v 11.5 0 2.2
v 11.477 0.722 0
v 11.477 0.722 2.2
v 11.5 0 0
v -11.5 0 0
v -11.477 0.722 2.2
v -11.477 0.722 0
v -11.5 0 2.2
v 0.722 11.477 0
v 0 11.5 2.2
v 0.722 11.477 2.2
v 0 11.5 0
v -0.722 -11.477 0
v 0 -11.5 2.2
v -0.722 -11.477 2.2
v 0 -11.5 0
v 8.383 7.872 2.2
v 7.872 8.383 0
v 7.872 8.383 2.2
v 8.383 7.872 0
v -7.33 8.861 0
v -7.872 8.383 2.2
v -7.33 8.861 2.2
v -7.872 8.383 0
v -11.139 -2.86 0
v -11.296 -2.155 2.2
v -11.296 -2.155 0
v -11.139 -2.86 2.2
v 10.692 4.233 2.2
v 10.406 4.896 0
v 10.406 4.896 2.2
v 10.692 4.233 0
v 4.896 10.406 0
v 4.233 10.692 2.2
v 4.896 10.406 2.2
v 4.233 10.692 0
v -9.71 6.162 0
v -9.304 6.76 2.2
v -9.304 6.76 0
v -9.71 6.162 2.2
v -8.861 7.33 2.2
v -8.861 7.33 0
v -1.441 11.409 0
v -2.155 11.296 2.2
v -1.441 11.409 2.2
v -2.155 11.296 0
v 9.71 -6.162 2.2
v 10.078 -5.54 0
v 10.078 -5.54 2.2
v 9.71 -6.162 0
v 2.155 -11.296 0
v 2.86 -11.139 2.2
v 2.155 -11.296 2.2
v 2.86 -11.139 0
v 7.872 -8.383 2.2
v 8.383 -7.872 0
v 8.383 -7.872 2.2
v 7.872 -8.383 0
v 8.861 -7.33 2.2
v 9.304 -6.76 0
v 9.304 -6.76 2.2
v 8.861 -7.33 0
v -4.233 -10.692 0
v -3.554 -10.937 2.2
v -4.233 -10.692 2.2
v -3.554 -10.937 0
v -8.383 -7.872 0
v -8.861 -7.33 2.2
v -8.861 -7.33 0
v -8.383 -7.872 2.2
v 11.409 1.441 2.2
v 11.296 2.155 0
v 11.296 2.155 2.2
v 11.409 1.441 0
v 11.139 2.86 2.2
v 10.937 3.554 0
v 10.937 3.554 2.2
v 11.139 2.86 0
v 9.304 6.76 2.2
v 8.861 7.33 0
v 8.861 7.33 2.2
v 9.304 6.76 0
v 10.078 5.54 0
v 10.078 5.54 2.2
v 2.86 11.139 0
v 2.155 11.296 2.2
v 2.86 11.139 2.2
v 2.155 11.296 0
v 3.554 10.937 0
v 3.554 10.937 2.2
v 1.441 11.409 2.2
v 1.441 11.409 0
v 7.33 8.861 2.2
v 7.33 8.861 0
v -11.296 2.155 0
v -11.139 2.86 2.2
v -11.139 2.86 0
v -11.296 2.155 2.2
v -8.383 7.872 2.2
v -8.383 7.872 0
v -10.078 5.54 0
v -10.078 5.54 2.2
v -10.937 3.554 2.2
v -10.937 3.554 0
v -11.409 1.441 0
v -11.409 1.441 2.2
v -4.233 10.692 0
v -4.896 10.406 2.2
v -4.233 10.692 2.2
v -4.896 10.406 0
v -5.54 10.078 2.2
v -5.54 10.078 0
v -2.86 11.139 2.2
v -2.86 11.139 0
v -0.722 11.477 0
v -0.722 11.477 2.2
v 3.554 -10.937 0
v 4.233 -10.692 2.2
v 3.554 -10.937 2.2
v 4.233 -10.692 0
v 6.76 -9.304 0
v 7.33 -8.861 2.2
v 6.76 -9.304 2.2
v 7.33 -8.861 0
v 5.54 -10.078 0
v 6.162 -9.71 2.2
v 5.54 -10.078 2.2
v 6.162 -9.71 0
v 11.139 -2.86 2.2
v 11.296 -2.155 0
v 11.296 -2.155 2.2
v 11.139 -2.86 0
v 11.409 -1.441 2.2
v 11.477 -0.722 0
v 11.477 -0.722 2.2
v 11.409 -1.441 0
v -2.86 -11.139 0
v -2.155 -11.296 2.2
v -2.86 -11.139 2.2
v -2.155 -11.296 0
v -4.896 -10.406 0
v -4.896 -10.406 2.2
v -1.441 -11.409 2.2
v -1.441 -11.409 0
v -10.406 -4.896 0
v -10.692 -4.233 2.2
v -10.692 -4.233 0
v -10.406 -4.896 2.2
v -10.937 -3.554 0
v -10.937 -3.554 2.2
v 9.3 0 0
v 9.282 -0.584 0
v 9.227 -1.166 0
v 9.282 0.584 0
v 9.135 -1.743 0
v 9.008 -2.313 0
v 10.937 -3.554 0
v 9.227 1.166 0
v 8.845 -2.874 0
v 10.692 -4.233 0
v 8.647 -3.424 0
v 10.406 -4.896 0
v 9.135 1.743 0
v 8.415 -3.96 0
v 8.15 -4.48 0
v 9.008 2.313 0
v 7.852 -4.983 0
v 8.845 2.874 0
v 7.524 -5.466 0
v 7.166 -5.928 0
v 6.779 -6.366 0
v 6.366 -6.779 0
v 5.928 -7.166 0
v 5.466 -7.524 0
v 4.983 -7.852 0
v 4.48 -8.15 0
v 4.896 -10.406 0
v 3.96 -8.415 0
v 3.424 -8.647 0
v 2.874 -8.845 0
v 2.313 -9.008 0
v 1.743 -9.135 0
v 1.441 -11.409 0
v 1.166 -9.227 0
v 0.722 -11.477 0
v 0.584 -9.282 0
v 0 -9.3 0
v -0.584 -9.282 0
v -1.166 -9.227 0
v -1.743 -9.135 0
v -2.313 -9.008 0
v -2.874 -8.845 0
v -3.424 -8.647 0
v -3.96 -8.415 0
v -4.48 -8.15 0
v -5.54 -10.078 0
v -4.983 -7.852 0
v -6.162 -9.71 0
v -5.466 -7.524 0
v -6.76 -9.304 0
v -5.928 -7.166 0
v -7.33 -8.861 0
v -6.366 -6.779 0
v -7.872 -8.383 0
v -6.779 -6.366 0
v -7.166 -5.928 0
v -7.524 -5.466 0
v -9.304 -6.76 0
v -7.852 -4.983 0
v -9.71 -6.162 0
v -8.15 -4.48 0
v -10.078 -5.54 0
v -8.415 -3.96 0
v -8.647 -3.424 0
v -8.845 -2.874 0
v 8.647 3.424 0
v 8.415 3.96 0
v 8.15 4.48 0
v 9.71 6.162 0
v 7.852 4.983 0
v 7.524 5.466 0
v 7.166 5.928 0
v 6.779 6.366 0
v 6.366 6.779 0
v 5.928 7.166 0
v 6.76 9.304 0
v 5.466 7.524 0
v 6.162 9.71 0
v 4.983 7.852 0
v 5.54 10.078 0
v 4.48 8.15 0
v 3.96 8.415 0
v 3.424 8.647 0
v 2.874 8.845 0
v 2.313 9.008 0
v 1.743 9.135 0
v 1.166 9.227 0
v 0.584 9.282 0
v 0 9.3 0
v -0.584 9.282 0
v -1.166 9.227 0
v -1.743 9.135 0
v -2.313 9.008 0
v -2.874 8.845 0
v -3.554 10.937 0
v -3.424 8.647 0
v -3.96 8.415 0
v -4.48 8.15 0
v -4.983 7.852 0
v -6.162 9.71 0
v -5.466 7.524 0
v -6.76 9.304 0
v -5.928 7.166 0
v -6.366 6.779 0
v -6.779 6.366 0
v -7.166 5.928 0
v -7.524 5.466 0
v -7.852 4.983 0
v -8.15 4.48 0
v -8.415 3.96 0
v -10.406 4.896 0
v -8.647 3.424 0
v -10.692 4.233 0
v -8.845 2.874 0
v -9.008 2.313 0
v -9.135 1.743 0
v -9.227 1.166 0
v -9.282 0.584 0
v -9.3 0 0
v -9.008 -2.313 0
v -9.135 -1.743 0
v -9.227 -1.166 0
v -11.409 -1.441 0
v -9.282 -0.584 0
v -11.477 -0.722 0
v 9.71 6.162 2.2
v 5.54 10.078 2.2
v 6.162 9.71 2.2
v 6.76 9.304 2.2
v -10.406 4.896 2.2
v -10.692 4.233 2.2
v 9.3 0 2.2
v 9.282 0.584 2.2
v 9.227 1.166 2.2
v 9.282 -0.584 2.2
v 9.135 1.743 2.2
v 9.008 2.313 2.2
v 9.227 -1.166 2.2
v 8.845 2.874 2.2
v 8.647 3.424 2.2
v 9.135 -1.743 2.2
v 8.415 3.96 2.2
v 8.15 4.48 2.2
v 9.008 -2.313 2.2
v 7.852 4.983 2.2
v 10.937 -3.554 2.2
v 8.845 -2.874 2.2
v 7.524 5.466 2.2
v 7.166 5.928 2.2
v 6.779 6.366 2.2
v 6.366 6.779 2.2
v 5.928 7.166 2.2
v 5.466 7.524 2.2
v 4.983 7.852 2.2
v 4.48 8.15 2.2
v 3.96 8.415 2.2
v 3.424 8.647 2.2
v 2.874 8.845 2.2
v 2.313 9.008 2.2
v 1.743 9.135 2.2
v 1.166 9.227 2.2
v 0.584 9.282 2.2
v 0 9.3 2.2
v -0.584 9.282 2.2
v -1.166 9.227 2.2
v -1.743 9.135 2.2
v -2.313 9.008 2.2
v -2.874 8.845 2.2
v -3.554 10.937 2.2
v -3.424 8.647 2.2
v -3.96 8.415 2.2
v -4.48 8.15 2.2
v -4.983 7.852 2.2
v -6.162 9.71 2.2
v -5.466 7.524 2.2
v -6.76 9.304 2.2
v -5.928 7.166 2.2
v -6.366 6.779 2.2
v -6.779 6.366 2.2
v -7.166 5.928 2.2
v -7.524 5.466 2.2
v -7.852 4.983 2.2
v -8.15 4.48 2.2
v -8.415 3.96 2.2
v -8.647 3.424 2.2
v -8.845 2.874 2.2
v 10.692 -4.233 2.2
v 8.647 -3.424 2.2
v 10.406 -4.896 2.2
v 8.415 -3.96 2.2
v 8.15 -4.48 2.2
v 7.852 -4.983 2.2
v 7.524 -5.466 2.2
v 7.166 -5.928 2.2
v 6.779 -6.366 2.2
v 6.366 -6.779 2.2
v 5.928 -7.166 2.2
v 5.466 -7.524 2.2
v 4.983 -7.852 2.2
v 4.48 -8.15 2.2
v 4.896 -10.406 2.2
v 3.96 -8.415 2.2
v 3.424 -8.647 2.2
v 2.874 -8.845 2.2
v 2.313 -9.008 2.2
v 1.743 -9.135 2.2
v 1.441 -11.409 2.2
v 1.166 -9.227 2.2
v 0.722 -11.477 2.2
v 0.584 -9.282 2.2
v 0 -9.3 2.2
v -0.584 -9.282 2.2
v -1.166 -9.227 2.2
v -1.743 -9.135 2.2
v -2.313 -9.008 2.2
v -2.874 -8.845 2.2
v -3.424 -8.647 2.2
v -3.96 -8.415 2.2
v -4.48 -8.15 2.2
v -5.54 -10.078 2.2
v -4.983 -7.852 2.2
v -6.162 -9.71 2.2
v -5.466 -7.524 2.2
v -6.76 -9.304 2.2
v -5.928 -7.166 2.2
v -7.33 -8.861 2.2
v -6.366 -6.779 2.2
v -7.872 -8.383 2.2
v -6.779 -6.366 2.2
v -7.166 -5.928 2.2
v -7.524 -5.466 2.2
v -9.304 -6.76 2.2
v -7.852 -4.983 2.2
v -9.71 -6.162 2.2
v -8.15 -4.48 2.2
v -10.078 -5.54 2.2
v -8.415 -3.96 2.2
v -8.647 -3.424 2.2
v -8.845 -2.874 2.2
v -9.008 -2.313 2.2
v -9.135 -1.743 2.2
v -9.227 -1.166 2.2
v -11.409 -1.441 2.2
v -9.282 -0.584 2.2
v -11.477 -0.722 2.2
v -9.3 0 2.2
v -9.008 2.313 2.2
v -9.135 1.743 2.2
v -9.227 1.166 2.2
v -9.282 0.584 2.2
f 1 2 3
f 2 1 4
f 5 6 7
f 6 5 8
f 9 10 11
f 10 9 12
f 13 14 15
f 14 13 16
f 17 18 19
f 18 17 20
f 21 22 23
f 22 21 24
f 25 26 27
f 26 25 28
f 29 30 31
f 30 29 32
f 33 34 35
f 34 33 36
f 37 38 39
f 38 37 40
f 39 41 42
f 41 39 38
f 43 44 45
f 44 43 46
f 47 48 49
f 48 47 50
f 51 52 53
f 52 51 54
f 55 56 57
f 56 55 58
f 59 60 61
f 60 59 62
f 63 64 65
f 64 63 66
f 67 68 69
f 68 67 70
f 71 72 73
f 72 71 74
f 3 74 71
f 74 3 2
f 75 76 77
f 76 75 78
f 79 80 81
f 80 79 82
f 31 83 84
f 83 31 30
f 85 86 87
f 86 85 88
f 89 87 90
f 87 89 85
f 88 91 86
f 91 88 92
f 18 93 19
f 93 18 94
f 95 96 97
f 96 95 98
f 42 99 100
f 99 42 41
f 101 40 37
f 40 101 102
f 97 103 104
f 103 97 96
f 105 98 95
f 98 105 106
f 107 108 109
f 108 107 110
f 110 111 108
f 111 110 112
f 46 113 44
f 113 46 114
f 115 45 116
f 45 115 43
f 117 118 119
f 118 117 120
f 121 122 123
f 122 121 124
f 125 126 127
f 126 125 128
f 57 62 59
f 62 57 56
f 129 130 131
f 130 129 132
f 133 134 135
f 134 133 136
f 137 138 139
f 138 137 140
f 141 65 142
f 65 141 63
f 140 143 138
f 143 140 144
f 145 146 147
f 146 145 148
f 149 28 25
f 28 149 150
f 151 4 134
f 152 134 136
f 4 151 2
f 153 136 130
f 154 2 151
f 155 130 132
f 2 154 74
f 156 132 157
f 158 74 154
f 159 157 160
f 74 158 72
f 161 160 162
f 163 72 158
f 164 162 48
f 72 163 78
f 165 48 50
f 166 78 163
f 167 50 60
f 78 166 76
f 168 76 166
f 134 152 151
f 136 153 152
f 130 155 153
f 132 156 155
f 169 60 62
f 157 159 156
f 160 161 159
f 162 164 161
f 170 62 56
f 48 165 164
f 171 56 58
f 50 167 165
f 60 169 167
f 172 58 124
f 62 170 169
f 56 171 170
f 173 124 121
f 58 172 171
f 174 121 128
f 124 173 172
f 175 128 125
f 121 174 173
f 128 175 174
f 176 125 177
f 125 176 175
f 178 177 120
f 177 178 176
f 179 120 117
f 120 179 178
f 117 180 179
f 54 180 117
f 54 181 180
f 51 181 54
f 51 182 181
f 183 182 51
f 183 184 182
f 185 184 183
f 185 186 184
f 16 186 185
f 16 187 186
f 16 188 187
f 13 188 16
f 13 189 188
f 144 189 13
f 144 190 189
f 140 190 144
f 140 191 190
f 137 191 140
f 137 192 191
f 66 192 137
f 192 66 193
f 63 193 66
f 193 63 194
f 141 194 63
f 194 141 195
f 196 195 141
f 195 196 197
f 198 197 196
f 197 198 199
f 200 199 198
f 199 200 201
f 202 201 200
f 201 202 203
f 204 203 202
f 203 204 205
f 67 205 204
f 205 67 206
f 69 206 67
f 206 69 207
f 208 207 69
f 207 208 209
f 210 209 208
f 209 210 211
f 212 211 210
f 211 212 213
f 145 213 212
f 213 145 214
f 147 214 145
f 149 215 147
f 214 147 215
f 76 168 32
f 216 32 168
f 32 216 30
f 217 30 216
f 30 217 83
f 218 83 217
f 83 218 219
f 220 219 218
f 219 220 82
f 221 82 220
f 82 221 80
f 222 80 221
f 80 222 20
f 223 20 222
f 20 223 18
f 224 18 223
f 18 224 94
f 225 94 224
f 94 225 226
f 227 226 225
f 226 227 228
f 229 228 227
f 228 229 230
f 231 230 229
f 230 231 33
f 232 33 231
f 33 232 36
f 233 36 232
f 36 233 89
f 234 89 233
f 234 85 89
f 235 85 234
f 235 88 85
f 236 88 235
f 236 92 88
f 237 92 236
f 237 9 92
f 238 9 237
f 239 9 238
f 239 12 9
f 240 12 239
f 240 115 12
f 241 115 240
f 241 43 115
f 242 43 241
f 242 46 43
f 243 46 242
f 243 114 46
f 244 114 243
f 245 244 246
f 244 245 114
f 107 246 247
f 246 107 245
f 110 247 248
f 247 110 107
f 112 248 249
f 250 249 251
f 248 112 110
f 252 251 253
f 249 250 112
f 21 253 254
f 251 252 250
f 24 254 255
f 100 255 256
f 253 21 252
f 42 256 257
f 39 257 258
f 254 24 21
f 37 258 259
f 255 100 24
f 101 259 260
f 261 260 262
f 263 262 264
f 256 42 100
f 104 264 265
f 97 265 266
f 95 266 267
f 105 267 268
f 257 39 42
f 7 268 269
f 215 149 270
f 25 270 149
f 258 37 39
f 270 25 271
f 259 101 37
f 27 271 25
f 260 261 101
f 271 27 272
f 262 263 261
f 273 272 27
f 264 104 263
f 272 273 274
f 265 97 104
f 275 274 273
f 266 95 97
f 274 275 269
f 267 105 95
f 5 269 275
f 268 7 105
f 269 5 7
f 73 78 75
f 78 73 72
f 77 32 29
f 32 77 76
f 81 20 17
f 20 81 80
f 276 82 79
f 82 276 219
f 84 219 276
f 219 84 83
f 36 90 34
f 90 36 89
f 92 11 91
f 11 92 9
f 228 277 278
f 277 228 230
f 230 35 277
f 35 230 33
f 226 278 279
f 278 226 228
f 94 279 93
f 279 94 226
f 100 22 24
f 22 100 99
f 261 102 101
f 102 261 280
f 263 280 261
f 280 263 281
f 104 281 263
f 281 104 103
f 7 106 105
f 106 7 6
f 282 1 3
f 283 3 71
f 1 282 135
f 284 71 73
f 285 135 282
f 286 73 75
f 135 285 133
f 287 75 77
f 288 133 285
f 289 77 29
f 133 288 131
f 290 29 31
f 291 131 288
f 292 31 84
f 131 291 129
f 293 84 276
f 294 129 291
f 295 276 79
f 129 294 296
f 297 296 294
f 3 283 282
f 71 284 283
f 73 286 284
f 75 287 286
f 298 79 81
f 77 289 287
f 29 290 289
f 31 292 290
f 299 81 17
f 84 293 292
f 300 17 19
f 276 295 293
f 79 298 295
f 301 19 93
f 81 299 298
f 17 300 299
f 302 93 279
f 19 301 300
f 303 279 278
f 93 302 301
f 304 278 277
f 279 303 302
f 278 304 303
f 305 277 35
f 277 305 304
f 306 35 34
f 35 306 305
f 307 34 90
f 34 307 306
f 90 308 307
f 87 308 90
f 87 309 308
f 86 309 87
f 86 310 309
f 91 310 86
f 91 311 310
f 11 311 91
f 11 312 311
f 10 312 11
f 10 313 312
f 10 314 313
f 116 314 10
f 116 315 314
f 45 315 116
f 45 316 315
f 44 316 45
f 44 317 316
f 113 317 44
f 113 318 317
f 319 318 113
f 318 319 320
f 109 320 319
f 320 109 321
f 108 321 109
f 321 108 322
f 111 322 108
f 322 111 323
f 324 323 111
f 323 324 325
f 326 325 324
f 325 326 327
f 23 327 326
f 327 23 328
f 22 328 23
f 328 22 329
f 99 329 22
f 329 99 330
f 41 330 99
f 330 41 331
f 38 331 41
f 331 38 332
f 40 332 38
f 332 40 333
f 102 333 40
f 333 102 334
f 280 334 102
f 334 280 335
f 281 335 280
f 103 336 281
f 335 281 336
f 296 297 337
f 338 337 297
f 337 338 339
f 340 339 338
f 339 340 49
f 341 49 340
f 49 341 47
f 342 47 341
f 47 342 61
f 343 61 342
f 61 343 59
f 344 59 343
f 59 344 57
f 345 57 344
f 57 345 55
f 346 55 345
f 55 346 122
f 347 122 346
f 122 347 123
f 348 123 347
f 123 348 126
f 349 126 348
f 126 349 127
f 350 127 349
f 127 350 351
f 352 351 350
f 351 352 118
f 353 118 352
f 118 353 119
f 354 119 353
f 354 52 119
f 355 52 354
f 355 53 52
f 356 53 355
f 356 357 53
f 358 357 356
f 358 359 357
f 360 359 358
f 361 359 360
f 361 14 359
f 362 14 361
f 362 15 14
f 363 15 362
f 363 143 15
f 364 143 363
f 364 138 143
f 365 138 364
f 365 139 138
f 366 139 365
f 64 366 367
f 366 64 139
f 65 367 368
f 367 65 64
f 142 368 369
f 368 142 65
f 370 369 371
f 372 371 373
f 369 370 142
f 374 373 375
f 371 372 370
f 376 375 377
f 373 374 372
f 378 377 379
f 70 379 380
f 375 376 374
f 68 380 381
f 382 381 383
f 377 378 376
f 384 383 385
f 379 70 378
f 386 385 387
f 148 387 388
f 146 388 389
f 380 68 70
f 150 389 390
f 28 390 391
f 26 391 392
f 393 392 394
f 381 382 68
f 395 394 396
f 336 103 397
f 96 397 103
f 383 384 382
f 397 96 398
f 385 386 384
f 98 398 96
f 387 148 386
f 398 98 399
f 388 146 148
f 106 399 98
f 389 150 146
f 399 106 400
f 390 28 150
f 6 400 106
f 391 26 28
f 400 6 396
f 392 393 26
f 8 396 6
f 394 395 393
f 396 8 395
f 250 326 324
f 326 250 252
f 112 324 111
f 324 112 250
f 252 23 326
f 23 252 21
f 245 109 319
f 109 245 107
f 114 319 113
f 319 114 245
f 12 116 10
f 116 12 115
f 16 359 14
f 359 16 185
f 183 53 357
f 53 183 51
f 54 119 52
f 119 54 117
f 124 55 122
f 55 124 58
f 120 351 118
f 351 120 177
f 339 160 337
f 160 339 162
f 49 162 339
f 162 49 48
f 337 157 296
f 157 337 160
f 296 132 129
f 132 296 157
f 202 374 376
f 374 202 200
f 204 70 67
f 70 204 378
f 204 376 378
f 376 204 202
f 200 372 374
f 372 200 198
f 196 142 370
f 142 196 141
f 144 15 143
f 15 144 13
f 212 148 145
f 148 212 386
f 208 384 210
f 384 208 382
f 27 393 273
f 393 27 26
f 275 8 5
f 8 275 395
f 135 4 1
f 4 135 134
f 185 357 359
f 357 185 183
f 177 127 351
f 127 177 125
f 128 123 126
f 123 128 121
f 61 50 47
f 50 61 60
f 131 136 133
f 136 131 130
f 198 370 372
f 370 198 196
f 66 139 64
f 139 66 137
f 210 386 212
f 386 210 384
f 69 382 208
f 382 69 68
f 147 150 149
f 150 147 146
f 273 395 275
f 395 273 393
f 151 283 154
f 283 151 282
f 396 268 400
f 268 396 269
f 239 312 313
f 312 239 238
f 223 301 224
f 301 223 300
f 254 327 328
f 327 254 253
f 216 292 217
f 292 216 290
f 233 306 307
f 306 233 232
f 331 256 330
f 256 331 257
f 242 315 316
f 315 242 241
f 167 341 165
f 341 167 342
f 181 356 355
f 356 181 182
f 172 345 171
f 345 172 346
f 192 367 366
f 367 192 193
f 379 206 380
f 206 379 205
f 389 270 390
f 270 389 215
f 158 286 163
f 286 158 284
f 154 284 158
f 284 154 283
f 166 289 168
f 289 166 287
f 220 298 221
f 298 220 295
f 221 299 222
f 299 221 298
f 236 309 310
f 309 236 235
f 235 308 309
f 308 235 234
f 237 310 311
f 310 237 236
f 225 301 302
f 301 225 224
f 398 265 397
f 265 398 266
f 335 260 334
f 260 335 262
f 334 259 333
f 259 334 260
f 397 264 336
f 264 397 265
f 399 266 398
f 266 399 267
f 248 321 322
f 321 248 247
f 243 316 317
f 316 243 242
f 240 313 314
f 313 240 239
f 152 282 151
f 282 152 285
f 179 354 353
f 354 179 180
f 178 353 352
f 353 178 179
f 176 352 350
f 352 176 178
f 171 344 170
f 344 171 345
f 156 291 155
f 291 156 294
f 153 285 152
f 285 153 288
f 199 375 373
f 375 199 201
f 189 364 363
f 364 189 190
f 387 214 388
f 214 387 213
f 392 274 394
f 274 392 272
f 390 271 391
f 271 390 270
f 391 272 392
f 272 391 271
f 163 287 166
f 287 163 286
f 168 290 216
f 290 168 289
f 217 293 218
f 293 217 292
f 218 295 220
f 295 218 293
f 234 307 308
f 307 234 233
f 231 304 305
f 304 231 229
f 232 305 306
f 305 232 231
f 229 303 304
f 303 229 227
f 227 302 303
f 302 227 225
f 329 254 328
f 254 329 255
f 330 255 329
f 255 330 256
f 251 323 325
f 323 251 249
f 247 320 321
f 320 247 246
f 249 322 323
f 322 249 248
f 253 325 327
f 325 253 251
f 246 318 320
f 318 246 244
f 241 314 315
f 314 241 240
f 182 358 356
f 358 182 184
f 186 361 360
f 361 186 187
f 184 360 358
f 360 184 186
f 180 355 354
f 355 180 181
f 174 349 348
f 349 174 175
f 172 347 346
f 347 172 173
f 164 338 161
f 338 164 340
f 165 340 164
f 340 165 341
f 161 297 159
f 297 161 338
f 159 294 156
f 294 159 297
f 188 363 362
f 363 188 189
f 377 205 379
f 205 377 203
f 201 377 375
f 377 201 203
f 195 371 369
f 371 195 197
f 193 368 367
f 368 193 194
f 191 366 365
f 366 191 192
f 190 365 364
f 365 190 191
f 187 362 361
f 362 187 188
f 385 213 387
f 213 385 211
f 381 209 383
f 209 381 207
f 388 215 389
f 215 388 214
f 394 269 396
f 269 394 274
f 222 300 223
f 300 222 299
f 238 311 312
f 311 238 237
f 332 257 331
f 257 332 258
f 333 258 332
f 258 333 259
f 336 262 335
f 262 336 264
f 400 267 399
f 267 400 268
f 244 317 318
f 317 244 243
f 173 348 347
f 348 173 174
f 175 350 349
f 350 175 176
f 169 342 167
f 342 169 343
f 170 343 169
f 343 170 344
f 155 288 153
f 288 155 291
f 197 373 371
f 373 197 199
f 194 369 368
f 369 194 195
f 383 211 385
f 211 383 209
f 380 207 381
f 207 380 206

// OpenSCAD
$fn = 100;
difference() {
    cylinder(2.2, 23/2, 23/2);
    cylinder(2.2, 18.6/2, 18.6/2);
}
